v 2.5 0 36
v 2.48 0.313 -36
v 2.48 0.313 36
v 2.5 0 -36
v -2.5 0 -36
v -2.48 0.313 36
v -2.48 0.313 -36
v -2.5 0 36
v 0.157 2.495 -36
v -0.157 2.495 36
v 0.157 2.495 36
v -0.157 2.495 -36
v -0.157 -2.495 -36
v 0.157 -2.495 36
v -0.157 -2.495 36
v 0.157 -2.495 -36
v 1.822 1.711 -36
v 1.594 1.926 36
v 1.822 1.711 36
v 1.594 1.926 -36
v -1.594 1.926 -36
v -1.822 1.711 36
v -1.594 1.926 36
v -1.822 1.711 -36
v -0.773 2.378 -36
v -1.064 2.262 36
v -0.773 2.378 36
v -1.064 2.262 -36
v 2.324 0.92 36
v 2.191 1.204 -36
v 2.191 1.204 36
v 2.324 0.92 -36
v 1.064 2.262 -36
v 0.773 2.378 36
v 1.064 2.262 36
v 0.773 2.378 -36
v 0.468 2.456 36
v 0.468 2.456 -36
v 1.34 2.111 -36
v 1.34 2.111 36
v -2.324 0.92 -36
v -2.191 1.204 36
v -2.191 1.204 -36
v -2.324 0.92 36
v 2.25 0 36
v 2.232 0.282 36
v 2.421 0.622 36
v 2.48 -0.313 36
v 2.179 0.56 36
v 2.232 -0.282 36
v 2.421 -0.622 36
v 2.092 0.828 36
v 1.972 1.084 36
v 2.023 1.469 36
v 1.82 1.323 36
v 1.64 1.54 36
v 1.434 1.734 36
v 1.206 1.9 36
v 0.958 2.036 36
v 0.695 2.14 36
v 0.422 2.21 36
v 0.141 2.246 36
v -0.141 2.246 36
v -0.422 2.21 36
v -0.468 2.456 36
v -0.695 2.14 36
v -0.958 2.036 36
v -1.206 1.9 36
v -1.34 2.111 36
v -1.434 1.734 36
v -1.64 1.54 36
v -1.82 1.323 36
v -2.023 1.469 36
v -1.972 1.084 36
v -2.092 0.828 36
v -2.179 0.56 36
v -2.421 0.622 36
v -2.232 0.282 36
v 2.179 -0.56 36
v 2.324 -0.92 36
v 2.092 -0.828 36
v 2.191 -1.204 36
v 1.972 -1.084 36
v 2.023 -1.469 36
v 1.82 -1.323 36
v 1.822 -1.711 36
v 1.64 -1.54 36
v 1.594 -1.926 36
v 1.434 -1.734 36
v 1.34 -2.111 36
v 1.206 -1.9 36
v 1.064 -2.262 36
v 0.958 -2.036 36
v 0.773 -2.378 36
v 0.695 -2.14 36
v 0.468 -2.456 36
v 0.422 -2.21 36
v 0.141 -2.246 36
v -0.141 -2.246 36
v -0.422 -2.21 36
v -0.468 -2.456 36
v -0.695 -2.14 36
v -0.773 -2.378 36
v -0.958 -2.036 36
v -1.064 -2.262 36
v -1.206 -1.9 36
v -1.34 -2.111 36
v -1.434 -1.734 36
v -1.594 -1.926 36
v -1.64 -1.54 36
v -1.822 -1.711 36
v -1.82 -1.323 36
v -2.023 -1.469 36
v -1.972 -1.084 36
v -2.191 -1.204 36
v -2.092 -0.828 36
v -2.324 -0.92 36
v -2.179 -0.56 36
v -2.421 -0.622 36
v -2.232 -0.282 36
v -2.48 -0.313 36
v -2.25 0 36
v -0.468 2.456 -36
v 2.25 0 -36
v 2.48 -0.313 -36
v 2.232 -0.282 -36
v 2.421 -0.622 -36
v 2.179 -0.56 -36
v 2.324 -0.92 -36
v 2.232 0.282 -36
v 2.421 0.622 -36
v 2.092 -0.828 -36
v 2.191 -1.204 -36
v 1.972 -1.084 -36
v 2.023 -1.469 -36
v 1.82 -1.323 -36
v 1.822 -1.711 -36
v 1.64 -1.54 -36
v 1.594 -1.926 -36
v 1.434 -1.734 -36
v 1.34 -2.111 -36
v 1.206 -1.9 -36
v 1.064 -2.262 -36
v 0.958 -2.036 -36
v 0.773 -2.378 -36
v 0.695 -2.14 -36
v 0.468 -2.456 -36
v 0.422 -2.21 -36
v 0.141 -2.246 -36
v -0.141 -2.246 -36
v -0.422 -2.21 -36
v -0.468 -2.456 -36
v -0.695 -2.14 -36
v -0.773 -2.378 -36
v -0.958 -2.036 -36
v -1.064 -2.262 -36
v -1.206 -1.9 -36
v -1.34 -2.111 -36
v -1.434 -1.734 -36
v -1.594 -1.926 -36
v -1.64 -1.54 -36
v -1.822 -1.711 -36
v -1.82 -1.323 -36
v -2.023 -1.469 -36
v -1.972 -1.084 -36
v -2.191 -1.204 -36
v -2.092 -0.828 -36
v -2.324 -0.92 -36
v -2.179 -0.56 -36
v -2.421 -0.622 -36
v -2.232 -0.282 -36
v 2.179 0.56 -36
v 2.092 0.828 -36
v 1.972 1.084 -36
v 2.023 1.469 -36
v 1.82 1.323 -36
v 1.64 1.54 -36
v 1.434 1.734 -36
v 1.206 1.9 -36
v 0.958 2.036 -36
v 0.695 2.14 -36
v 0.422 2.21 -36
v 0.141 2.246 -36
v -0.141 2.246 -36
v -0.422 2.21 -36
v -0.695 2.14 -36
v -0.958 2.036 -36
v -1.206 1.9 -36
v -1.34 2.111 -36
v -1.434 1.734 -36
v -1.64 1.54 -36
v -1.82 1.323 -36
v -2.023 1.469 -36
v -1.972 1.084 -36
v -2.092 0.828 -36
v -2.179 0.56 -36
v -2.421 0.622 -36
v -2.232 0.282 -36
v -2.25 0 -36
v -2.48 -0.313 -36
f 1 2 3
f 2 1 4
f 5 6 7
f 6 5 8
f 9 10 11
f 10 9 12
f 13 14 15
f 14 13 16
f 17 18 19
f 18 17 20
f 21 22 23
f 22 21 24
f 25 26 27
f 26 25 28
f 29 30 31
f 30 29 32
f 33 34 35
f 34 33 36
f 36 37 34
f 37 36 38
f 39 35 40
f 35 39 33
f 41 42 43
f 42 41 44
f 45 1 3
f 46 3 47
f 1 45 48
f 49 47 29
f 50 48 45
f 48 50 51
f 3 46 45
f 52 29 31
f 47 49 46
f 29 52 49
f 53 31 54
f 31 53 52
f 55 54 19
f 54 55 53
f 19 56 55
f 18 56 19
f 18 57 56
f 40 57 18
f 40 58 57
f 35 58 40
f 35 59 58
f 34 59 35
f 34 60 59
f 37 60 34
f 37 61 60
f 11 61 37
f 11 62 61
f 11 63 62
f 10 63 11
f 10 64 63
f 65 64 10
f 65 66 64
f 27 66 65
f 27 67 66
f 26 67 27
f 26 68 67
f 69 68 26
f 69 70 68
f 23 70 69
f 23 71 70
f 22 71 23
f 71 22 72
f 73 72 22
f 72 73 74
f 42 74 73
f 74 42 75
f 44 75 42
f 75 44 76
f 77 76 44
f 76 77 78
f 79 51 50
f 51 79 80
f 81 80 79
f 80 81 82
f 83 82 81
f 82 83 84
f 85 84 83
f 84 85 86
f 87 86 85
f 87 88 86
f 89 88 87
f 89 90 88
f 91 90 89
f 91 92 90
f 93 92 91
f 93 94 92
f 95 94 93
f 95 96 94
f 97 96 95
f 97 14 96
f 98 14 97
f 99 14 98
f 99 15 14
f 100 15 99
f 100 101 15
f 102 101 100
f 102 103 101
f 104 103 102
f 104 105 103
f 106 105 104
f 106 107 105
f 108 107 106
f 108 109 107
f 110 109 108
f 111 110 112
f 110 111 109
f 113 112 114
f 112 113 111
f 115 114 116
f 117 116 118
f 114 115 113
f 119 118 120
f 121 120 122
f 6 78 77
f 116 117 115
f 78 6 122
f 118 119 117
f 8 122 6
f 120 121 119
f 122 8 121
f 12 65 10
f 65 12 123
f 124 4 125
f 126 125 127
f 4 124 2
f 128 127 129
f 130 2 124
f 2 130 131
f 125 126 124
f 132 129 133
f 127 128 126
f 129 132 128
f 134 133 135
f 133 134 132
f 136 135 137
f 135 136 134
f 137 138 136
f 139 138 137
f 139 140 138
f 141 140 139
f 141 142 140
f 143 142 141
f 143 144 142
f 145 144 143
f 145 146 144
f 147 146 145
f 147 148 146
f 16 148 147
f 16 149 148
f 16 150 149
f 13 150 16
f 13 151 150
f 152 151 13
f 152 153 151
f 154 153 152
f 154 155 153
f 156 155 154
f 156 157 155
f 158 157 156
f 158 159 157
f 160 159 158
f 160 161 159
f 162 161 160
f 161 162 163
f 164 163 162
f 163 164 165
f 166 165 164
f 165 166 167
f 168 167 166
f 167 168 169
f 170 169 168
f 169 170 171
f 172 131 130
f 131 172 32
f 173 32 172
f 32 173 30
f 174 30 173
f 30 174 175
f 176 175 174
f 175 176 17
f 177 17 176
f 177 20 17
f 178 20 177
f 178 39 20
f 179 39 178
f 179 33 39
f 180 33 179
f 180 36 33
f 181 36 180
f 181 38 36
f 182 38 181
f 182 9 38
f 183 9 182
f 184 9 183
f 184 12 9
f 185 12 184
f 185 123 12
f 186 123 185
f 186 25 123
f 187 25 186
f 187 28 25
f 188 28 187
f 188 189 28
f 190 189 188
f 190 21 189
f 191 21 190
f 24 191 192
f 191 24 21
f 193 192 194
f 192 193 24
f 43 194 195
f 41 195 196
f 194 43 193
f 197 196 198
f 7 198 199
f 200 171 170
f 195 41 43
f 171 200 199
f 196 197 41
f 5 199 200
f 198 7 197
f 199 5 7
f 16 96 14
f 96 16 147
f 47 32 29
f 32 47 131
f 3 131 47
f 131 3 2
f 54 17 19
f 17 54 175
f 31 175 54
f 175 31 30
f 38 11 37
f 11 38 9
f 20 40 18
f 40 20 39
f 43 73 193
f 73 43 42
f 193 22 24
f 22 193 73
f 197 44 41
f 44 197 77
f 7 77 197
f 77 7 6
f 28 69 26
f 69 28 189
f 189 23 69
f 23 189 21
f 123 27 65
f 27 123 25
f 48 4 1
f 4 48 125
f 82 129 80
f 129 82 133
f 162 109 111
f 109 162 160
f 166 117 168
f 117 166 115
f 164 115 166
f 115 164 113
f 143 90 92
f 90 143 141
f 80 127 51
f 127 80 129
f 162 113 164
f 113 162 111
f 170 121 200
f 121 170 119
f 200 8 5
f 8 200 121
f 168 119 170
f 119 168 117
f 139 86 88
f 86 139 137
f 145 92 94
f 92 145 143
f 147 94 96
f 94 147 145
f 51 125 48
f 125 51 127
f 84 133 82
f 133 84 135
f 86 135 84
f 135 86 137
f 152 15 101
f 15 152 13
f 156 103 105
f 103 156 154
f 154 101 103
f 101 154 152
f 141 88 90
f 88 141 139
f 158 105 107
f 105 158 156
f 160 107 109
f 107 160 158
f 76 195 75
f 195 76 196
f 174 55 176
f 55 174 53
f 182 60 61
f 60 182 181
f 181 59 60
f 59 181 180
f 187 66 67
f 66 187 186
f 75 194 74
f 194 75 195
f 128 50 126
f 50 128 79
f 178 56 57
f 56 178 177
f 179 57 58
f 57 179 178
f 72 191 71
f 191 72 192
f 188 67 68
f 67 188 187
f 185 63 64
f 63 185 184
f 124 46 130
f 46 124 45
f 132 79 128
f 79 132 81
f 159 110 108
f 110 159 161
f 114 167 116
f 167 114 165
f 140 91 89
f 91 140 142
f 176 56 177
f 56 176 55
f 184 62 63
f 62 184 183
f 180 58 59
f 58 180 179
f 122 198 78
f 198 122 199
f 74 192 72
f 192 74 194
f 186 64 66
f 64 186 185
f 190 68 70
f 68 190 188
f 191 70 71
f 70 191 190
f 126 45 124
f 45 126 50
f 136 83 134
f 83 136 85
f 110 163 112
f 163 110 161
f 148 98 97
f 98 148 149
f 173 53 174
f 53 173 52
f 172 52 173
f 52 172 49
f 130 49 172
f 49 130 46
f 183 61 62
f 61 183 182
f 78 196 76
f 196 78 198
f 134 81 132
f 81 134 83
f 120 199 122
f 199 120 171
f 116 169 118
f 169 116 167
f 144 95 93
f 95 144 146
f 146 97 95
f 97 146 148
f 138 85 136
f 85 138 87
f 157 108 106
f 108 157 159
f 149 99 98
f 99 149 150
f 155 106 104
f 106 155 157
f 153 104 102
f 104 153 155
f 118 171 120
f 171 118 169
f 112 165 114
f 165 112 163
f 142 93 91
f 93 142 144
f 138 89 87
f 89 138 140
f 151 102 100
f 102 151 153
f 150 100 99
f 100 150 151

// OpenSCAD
$fn = 50;


difference() {
	union() {
		translate(v = [0, 0, -36.0000000000]) {
			cylinder(h = 72, r = 2.5000000000);
		}
	}
	union() {
		translate(v = [0, 0, -100.0000000000]) {
			cylinder(h = 200, r = 2.2500000000);
		}
	}
}
